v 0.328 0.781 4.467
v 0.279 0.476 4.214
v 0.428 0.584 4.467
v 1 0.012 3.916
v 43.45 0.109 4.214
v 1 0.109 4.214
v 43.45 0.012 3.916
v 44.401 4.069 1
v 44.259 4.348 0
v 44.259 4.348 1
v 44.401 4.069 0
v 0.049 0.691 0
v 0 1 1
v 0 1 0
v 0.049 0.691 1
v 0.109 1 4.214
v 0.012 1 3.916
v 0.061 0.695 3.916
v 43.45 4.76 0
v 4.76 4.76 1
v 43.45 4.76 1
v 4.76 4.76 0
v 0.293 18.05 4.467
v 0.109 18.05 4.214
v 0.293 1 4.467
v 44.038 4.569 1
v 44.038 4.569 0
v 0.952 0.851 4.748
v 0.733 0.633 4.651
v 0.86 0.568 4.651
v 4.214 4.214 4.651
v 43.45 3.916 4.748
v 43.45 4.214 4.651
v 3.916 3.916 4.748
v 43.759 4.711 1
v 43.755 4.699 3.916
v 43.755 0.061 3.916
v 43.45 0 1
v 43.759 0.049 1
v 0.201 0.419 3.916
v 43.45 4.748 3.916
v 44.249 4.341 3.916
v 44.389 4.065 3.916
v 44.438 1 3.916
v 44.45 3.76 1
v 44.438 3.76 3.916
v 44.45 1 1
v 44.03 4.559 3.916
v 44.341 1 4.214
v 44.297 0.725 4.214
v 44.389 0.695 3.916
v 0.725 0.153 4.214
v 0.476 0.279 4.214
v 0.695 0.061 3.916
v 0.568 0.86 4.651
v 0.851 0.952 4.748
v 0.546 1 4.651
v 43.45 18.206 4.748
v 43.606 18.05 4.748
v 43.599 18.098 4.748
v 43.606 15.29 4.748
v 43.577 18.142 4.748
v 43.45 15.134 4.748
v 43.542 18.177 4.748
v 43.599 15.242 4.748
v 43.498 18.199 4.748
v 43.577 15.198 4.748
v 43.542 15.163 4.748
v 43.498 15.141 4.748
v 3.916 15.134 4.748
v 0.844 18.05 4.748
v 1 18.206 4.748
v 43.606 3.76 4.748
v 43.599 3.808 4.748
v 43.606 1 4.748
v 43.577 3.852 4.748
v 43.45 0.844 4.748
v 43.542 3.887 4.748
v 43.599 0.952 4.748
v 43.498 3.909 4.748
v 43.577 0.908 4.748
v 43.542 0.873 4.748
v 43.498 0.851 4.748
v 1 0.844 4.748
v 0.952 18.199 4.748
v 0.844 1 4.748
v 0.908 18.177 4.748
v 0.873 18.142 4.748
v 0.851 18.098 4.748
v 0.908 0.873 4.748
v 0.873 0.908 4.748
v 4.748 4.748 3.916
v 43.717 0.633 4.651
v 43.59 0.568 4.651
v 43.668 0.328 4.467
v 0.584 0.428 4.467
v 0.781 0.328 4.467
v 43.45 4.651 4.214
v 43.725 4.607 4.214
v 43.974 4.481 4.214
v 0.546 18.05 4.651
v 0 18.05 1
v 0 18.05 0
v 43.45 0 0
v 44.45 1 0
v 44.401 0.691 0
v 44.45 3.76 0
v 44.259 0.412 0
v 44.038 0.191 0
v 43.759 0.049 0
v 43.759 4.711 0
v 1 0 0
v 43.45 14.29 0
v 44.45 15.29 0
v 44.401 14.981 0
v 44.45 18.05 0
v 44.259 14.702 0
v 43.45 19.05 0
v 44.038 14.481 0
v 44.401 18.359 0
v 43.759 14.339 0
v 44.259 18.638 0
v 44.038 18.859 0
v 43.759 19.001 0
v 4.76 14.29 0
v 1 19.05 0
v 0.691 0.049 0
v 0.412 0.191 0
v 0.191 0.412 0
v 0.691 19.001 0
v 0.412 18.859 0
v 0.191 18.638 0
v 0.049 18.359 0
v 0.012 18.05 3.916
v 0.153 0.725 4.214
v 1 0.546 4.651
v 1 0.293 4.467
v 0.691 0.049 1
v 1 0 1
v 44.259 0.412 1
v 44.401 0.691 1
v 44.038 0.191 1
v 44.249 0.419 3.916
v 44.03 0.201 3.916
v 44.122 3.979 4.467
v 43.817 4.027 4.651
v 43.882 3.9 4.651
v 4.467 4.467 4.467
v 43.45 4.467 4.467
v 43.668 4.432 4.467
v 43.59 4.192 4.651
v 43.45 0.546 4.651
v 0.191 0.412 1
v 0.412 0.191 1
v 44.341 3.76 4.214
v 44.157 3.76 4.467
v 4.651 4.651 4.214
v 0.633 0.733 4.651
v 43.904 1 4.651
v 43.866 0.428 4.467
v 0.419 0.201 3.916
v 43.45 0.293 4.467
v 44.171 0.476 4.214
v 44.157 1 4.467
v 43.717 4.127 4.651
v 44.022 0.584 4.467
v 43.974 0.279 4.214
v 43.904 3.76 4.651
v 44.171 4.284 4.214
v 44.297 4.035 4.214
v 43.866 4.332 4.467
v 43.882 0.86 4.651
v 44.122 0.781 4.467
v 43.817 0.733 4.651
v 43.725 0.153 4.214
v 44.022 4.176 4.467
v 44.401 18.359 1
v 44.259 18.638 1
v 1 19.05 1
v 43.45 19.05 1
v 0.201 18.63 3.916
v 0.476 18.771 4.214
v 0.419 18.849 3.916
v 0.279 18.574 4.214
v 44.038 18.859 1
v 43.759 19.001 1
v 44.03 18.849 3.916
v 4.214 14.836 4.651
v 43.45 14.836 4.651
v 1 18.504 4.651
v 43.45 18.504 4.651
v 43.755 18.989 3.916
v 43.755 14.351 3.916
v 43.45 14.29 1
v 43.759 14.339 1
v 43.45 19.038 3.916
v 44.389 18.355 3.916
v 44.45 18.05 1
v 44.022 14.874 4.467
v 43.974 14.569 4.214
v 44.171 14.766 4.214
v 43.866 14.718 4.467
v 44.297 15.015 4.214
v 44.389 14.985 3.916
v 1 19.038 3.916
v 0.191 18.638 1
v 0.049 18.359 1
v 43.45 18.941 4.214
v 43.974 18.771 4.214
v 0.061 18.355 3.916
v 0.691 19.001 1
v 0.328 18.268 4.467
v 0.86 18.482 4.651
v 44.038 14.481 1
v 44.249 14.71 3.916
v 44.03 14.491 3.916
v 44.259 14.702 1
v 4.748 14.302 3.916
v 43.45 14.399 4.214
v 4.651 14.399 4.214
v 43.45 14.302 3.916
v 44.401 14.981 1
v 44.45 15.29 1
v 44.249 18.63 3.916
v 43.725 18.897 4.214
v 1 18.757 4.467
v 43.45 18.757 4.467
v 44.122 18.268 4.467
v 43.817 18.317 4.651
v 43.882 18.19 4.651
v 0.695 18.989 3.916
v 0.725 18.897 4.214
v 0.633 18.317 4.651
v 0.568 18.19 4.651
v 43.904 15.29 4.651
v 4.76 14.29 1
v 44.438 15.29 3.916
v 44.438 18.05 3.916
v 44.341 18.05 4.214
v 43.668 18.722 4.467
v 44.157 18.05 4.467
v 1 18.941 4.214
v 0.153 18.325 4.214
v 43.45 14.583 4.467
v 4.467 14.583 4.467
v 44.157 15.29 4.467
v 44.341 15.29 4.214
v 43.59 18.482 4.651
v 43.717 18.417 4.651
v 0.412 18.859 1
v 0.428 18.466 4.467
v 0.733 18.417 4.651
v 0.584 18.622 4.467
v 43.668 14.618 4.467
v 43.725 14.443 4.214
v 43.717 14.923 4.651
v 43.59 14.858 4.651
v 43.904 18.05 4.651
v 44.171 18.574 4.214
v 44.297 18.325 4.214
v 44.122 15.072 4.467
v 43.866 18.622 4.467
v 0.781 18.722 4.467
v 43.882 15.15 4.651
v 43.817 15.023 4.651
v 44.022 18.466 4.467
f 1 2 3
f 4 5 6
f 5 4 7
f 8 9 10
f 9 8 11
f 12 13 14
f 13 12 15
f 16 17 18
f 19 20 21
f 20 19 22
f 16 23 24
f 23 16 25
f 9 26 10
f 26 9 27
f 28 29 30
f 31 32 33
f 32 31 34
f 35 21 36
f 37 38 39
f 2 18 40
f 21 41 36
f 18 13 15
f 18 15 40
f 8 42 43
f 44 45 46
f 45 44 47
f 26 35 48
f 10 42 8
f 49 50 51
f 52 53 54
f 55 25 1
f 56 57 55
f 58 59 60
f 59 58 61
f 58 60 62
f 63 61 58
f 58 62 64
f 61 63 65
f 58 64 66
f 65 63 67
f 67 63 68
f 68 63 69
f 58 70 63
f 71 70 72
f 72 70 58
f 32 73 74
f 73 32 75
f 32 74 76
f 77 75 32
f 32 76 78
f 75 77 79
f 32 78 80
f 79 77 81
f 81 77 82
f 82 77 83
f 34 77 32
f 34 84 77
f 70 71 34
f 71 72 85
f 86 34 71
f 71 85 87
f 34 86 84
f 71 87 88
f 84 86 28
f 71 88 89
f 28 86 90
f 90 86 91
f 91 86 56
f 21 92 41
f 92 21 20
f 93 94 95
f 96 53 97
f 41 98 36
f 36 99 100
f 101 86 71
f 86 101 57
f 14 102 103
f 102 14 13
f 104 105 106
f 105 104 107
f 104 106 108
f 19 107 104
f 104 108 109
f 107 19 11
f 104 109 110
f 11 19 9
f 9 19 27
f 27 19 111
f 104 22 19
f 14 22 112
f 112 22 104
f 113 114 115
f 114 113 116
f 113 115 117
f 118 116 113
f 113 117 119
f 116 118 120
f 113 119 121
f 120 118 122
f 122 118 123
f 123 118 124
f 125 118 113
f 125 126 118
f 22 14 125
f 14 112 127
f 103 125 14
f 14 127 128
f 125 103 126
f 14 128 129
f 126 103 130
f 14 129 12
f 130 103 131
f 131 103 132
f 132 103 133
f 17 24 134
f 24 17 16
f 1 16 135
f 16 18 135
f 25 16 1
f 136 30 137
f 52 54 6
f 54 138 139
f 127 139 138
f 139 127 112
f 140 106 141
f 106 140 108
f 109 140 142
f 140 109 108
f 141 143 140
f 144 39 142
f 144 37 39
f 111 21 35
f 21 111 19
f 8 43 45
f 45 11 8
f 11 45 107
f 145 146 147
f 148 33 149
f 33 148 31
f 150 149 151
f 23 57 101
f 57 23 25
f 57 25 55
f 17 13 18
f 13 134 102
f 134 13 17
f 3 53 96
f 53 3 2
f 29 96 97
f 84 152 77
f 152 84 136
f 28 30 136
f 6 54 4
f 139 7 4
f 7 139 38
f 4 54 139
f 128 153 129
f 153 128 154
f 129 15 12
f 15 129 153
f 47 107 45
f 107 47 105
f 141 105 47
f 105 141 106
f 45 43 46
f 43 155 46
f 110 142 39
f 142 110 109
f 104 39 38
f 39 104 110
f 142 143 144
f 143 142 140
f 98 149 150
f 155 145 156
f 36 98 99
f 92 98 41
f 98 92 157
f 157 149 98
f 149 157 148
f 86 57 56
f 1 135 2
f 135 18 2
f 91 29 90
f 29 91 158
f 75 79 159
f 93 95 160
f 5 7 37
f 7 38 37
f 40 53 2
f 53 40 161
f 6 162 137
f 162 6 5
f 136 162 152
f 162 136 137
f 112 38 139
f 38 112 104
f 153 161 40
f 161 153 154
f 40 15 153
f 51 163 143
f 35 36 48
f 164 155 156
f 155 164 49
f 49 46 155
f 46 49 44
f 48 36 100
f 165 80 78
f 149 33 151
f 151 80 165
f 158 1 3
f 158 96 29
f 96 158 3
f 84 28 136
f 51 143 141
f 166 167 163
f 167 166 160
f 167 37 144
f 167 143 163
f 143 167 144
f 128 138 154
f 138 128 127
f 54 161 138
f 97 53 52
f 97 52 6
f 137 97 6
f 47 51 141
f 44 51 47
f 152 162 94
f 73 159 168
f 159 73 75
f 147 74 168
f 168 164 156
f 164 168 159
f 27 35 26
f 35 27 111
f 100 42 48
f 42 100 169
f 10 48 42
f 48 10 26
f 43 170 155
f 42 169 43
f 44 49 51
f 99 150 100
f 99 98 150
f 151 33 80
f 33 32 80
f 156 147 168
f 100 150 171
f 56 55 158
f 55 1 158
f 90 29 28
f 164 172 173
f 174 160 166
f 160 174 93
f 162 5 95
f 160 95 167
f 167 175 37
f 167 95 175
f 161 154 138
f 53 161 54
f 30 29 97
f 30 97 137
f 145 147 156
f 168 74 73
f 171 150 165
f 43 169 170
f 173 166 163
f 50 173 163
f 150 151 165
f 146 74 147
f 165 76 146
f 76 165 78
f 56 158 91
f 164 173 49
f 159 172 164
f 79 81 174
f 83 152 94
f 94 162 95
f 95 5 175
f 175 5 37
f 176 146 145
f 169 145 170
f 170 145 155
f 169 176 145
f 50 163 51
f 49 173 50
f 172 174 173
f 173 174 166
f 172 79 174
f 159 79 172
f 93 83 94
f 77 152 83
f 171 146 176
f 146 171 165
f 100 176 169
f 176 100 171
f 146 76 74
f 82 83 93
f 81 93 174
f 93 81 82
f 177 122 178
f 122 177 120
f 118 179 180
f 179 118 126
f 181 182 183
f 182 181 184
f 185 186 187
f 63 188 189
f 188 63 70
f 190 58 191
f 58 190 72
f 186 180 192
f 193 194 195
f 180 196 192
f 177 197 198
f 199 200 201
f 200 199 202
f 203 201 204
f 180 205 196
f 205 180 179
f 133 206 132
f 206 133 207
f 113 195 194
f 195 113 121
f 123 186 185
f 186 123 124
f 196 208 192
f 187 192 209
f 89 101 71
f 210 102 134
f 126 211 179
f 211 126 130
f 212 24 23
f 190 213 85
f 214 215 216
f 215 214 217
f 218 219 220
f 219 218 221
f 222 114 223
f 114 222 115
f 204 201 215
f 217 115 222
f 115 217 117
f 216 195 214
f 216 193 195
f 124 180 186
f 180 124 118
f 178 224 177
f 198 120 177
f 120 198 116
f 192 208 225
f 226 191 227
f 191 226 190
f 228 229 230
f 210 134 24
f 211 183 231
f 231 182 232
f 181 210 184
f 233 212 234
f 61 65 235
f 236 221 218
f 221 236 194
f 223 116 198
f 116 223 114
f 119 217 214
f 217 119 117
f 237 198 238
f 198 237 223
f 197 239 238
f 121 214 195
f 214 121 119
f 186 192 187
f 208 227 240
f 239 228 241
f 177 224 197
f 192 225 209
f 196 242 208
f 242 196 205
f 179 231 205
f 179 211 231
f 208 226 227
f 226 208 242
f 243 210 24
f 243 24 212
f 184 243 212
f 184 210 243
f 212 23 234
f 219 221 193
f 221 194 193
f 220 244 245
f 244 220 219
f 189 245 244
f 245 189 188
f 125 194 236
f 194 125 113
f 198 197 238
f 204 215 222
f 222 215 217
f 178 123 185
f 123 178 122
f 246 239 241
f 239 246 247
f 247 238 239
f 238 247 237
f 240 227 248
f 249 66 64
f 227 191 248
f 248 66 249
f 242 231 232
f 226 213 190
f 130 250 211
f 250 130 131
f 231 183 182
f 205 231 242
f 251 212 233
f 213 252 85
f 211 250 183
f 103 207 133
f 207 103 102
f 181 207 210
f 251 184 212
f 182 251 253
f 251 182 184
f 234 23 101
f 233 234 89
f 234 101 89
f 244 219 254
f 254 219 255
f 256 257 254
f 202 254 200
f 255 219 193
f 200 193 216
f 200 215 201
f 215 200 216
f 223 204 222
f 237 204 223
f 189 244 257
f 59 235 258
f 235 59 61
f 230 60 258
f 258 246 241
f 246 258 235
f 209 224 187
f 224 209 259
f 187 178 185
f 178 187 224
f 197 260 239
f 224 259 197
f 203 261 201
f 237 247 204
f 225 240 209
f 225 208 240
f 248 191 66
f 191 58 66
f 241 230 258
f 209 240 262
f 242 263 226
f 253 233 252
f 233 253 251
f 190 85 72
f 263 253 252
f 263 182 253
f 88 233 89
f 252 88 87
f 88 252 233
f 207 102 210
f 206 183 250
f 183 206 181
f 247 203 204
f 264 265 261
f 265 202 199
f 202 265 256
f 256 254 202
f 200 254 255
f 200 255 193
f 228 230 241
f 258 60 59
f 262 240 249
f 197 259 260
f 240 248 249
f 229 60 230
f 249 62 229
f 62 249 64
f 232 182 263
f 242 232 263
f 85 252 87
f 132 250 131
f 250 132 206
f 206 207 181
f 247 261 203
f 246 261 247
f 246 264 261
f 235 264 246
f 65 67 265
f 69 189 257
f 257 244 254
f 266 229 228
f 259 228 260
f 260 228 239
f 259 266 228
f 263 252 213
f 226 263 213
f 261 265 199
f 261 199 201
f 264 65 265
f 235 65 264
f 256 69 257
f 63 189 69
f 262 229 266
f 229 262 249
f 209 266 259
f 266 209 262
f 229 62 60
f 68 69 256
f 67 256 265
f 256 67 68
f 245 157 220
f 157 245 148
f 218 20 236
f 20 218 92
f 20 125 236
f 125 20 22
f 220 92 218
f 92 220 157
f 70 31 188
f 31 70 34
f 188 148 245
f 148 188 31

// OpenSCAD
totalWidth = 44.45; // 1 3/4"
totalHeight = 19.05; // 3/4"
lineThickness = 4.76; // 3/16"
lineHeight = 4.76; // 3/16"
roundness = 1;

module chamferedRect(size=[10,10,10], roundness=1, resolution=20) {
    $fn = resolution;
    x = size[0];
    y = size[1];
    z = size[2];
    hull() {
    translate([roundness, roundness, 0]) {
        cylinder(r=roundness, h=1);
        translate([0, 0, z-roundness]) sphere(roundness);
    }
    translate([x-roundness, roundness, 0]) {
        cylinder(r=roundness, h=1);
        translate([0, 0, z-roundness]) sphere(roundness);
    }
    translate([x-roundness, y-roundness, 0]) {
        cylinder(r=roundness, h=1);
        translate([0, 0, z-roundness]) sphere(roundness);
    }
    translate([roundness, y-roundness, 0]) {
        cylinder(r=roundness, h=1);
        translate([0, 0, z-roundness]) sphere(roundness);
    }
    }
}

union() {
// bottom of c
chamferedRect([totalWidth, lineThickness, lineHeight], roundness=roundness);
// top of c
translate([0, totalHeight-lineThickness, 0])
    chamferedRect(size=[totalWidth, lineThickness, lineHeight], roundness=roundness);
// left of c
chamferedRect(size=[lineThickness, totalHeight,lineHeight], roundness=roundness);
}
